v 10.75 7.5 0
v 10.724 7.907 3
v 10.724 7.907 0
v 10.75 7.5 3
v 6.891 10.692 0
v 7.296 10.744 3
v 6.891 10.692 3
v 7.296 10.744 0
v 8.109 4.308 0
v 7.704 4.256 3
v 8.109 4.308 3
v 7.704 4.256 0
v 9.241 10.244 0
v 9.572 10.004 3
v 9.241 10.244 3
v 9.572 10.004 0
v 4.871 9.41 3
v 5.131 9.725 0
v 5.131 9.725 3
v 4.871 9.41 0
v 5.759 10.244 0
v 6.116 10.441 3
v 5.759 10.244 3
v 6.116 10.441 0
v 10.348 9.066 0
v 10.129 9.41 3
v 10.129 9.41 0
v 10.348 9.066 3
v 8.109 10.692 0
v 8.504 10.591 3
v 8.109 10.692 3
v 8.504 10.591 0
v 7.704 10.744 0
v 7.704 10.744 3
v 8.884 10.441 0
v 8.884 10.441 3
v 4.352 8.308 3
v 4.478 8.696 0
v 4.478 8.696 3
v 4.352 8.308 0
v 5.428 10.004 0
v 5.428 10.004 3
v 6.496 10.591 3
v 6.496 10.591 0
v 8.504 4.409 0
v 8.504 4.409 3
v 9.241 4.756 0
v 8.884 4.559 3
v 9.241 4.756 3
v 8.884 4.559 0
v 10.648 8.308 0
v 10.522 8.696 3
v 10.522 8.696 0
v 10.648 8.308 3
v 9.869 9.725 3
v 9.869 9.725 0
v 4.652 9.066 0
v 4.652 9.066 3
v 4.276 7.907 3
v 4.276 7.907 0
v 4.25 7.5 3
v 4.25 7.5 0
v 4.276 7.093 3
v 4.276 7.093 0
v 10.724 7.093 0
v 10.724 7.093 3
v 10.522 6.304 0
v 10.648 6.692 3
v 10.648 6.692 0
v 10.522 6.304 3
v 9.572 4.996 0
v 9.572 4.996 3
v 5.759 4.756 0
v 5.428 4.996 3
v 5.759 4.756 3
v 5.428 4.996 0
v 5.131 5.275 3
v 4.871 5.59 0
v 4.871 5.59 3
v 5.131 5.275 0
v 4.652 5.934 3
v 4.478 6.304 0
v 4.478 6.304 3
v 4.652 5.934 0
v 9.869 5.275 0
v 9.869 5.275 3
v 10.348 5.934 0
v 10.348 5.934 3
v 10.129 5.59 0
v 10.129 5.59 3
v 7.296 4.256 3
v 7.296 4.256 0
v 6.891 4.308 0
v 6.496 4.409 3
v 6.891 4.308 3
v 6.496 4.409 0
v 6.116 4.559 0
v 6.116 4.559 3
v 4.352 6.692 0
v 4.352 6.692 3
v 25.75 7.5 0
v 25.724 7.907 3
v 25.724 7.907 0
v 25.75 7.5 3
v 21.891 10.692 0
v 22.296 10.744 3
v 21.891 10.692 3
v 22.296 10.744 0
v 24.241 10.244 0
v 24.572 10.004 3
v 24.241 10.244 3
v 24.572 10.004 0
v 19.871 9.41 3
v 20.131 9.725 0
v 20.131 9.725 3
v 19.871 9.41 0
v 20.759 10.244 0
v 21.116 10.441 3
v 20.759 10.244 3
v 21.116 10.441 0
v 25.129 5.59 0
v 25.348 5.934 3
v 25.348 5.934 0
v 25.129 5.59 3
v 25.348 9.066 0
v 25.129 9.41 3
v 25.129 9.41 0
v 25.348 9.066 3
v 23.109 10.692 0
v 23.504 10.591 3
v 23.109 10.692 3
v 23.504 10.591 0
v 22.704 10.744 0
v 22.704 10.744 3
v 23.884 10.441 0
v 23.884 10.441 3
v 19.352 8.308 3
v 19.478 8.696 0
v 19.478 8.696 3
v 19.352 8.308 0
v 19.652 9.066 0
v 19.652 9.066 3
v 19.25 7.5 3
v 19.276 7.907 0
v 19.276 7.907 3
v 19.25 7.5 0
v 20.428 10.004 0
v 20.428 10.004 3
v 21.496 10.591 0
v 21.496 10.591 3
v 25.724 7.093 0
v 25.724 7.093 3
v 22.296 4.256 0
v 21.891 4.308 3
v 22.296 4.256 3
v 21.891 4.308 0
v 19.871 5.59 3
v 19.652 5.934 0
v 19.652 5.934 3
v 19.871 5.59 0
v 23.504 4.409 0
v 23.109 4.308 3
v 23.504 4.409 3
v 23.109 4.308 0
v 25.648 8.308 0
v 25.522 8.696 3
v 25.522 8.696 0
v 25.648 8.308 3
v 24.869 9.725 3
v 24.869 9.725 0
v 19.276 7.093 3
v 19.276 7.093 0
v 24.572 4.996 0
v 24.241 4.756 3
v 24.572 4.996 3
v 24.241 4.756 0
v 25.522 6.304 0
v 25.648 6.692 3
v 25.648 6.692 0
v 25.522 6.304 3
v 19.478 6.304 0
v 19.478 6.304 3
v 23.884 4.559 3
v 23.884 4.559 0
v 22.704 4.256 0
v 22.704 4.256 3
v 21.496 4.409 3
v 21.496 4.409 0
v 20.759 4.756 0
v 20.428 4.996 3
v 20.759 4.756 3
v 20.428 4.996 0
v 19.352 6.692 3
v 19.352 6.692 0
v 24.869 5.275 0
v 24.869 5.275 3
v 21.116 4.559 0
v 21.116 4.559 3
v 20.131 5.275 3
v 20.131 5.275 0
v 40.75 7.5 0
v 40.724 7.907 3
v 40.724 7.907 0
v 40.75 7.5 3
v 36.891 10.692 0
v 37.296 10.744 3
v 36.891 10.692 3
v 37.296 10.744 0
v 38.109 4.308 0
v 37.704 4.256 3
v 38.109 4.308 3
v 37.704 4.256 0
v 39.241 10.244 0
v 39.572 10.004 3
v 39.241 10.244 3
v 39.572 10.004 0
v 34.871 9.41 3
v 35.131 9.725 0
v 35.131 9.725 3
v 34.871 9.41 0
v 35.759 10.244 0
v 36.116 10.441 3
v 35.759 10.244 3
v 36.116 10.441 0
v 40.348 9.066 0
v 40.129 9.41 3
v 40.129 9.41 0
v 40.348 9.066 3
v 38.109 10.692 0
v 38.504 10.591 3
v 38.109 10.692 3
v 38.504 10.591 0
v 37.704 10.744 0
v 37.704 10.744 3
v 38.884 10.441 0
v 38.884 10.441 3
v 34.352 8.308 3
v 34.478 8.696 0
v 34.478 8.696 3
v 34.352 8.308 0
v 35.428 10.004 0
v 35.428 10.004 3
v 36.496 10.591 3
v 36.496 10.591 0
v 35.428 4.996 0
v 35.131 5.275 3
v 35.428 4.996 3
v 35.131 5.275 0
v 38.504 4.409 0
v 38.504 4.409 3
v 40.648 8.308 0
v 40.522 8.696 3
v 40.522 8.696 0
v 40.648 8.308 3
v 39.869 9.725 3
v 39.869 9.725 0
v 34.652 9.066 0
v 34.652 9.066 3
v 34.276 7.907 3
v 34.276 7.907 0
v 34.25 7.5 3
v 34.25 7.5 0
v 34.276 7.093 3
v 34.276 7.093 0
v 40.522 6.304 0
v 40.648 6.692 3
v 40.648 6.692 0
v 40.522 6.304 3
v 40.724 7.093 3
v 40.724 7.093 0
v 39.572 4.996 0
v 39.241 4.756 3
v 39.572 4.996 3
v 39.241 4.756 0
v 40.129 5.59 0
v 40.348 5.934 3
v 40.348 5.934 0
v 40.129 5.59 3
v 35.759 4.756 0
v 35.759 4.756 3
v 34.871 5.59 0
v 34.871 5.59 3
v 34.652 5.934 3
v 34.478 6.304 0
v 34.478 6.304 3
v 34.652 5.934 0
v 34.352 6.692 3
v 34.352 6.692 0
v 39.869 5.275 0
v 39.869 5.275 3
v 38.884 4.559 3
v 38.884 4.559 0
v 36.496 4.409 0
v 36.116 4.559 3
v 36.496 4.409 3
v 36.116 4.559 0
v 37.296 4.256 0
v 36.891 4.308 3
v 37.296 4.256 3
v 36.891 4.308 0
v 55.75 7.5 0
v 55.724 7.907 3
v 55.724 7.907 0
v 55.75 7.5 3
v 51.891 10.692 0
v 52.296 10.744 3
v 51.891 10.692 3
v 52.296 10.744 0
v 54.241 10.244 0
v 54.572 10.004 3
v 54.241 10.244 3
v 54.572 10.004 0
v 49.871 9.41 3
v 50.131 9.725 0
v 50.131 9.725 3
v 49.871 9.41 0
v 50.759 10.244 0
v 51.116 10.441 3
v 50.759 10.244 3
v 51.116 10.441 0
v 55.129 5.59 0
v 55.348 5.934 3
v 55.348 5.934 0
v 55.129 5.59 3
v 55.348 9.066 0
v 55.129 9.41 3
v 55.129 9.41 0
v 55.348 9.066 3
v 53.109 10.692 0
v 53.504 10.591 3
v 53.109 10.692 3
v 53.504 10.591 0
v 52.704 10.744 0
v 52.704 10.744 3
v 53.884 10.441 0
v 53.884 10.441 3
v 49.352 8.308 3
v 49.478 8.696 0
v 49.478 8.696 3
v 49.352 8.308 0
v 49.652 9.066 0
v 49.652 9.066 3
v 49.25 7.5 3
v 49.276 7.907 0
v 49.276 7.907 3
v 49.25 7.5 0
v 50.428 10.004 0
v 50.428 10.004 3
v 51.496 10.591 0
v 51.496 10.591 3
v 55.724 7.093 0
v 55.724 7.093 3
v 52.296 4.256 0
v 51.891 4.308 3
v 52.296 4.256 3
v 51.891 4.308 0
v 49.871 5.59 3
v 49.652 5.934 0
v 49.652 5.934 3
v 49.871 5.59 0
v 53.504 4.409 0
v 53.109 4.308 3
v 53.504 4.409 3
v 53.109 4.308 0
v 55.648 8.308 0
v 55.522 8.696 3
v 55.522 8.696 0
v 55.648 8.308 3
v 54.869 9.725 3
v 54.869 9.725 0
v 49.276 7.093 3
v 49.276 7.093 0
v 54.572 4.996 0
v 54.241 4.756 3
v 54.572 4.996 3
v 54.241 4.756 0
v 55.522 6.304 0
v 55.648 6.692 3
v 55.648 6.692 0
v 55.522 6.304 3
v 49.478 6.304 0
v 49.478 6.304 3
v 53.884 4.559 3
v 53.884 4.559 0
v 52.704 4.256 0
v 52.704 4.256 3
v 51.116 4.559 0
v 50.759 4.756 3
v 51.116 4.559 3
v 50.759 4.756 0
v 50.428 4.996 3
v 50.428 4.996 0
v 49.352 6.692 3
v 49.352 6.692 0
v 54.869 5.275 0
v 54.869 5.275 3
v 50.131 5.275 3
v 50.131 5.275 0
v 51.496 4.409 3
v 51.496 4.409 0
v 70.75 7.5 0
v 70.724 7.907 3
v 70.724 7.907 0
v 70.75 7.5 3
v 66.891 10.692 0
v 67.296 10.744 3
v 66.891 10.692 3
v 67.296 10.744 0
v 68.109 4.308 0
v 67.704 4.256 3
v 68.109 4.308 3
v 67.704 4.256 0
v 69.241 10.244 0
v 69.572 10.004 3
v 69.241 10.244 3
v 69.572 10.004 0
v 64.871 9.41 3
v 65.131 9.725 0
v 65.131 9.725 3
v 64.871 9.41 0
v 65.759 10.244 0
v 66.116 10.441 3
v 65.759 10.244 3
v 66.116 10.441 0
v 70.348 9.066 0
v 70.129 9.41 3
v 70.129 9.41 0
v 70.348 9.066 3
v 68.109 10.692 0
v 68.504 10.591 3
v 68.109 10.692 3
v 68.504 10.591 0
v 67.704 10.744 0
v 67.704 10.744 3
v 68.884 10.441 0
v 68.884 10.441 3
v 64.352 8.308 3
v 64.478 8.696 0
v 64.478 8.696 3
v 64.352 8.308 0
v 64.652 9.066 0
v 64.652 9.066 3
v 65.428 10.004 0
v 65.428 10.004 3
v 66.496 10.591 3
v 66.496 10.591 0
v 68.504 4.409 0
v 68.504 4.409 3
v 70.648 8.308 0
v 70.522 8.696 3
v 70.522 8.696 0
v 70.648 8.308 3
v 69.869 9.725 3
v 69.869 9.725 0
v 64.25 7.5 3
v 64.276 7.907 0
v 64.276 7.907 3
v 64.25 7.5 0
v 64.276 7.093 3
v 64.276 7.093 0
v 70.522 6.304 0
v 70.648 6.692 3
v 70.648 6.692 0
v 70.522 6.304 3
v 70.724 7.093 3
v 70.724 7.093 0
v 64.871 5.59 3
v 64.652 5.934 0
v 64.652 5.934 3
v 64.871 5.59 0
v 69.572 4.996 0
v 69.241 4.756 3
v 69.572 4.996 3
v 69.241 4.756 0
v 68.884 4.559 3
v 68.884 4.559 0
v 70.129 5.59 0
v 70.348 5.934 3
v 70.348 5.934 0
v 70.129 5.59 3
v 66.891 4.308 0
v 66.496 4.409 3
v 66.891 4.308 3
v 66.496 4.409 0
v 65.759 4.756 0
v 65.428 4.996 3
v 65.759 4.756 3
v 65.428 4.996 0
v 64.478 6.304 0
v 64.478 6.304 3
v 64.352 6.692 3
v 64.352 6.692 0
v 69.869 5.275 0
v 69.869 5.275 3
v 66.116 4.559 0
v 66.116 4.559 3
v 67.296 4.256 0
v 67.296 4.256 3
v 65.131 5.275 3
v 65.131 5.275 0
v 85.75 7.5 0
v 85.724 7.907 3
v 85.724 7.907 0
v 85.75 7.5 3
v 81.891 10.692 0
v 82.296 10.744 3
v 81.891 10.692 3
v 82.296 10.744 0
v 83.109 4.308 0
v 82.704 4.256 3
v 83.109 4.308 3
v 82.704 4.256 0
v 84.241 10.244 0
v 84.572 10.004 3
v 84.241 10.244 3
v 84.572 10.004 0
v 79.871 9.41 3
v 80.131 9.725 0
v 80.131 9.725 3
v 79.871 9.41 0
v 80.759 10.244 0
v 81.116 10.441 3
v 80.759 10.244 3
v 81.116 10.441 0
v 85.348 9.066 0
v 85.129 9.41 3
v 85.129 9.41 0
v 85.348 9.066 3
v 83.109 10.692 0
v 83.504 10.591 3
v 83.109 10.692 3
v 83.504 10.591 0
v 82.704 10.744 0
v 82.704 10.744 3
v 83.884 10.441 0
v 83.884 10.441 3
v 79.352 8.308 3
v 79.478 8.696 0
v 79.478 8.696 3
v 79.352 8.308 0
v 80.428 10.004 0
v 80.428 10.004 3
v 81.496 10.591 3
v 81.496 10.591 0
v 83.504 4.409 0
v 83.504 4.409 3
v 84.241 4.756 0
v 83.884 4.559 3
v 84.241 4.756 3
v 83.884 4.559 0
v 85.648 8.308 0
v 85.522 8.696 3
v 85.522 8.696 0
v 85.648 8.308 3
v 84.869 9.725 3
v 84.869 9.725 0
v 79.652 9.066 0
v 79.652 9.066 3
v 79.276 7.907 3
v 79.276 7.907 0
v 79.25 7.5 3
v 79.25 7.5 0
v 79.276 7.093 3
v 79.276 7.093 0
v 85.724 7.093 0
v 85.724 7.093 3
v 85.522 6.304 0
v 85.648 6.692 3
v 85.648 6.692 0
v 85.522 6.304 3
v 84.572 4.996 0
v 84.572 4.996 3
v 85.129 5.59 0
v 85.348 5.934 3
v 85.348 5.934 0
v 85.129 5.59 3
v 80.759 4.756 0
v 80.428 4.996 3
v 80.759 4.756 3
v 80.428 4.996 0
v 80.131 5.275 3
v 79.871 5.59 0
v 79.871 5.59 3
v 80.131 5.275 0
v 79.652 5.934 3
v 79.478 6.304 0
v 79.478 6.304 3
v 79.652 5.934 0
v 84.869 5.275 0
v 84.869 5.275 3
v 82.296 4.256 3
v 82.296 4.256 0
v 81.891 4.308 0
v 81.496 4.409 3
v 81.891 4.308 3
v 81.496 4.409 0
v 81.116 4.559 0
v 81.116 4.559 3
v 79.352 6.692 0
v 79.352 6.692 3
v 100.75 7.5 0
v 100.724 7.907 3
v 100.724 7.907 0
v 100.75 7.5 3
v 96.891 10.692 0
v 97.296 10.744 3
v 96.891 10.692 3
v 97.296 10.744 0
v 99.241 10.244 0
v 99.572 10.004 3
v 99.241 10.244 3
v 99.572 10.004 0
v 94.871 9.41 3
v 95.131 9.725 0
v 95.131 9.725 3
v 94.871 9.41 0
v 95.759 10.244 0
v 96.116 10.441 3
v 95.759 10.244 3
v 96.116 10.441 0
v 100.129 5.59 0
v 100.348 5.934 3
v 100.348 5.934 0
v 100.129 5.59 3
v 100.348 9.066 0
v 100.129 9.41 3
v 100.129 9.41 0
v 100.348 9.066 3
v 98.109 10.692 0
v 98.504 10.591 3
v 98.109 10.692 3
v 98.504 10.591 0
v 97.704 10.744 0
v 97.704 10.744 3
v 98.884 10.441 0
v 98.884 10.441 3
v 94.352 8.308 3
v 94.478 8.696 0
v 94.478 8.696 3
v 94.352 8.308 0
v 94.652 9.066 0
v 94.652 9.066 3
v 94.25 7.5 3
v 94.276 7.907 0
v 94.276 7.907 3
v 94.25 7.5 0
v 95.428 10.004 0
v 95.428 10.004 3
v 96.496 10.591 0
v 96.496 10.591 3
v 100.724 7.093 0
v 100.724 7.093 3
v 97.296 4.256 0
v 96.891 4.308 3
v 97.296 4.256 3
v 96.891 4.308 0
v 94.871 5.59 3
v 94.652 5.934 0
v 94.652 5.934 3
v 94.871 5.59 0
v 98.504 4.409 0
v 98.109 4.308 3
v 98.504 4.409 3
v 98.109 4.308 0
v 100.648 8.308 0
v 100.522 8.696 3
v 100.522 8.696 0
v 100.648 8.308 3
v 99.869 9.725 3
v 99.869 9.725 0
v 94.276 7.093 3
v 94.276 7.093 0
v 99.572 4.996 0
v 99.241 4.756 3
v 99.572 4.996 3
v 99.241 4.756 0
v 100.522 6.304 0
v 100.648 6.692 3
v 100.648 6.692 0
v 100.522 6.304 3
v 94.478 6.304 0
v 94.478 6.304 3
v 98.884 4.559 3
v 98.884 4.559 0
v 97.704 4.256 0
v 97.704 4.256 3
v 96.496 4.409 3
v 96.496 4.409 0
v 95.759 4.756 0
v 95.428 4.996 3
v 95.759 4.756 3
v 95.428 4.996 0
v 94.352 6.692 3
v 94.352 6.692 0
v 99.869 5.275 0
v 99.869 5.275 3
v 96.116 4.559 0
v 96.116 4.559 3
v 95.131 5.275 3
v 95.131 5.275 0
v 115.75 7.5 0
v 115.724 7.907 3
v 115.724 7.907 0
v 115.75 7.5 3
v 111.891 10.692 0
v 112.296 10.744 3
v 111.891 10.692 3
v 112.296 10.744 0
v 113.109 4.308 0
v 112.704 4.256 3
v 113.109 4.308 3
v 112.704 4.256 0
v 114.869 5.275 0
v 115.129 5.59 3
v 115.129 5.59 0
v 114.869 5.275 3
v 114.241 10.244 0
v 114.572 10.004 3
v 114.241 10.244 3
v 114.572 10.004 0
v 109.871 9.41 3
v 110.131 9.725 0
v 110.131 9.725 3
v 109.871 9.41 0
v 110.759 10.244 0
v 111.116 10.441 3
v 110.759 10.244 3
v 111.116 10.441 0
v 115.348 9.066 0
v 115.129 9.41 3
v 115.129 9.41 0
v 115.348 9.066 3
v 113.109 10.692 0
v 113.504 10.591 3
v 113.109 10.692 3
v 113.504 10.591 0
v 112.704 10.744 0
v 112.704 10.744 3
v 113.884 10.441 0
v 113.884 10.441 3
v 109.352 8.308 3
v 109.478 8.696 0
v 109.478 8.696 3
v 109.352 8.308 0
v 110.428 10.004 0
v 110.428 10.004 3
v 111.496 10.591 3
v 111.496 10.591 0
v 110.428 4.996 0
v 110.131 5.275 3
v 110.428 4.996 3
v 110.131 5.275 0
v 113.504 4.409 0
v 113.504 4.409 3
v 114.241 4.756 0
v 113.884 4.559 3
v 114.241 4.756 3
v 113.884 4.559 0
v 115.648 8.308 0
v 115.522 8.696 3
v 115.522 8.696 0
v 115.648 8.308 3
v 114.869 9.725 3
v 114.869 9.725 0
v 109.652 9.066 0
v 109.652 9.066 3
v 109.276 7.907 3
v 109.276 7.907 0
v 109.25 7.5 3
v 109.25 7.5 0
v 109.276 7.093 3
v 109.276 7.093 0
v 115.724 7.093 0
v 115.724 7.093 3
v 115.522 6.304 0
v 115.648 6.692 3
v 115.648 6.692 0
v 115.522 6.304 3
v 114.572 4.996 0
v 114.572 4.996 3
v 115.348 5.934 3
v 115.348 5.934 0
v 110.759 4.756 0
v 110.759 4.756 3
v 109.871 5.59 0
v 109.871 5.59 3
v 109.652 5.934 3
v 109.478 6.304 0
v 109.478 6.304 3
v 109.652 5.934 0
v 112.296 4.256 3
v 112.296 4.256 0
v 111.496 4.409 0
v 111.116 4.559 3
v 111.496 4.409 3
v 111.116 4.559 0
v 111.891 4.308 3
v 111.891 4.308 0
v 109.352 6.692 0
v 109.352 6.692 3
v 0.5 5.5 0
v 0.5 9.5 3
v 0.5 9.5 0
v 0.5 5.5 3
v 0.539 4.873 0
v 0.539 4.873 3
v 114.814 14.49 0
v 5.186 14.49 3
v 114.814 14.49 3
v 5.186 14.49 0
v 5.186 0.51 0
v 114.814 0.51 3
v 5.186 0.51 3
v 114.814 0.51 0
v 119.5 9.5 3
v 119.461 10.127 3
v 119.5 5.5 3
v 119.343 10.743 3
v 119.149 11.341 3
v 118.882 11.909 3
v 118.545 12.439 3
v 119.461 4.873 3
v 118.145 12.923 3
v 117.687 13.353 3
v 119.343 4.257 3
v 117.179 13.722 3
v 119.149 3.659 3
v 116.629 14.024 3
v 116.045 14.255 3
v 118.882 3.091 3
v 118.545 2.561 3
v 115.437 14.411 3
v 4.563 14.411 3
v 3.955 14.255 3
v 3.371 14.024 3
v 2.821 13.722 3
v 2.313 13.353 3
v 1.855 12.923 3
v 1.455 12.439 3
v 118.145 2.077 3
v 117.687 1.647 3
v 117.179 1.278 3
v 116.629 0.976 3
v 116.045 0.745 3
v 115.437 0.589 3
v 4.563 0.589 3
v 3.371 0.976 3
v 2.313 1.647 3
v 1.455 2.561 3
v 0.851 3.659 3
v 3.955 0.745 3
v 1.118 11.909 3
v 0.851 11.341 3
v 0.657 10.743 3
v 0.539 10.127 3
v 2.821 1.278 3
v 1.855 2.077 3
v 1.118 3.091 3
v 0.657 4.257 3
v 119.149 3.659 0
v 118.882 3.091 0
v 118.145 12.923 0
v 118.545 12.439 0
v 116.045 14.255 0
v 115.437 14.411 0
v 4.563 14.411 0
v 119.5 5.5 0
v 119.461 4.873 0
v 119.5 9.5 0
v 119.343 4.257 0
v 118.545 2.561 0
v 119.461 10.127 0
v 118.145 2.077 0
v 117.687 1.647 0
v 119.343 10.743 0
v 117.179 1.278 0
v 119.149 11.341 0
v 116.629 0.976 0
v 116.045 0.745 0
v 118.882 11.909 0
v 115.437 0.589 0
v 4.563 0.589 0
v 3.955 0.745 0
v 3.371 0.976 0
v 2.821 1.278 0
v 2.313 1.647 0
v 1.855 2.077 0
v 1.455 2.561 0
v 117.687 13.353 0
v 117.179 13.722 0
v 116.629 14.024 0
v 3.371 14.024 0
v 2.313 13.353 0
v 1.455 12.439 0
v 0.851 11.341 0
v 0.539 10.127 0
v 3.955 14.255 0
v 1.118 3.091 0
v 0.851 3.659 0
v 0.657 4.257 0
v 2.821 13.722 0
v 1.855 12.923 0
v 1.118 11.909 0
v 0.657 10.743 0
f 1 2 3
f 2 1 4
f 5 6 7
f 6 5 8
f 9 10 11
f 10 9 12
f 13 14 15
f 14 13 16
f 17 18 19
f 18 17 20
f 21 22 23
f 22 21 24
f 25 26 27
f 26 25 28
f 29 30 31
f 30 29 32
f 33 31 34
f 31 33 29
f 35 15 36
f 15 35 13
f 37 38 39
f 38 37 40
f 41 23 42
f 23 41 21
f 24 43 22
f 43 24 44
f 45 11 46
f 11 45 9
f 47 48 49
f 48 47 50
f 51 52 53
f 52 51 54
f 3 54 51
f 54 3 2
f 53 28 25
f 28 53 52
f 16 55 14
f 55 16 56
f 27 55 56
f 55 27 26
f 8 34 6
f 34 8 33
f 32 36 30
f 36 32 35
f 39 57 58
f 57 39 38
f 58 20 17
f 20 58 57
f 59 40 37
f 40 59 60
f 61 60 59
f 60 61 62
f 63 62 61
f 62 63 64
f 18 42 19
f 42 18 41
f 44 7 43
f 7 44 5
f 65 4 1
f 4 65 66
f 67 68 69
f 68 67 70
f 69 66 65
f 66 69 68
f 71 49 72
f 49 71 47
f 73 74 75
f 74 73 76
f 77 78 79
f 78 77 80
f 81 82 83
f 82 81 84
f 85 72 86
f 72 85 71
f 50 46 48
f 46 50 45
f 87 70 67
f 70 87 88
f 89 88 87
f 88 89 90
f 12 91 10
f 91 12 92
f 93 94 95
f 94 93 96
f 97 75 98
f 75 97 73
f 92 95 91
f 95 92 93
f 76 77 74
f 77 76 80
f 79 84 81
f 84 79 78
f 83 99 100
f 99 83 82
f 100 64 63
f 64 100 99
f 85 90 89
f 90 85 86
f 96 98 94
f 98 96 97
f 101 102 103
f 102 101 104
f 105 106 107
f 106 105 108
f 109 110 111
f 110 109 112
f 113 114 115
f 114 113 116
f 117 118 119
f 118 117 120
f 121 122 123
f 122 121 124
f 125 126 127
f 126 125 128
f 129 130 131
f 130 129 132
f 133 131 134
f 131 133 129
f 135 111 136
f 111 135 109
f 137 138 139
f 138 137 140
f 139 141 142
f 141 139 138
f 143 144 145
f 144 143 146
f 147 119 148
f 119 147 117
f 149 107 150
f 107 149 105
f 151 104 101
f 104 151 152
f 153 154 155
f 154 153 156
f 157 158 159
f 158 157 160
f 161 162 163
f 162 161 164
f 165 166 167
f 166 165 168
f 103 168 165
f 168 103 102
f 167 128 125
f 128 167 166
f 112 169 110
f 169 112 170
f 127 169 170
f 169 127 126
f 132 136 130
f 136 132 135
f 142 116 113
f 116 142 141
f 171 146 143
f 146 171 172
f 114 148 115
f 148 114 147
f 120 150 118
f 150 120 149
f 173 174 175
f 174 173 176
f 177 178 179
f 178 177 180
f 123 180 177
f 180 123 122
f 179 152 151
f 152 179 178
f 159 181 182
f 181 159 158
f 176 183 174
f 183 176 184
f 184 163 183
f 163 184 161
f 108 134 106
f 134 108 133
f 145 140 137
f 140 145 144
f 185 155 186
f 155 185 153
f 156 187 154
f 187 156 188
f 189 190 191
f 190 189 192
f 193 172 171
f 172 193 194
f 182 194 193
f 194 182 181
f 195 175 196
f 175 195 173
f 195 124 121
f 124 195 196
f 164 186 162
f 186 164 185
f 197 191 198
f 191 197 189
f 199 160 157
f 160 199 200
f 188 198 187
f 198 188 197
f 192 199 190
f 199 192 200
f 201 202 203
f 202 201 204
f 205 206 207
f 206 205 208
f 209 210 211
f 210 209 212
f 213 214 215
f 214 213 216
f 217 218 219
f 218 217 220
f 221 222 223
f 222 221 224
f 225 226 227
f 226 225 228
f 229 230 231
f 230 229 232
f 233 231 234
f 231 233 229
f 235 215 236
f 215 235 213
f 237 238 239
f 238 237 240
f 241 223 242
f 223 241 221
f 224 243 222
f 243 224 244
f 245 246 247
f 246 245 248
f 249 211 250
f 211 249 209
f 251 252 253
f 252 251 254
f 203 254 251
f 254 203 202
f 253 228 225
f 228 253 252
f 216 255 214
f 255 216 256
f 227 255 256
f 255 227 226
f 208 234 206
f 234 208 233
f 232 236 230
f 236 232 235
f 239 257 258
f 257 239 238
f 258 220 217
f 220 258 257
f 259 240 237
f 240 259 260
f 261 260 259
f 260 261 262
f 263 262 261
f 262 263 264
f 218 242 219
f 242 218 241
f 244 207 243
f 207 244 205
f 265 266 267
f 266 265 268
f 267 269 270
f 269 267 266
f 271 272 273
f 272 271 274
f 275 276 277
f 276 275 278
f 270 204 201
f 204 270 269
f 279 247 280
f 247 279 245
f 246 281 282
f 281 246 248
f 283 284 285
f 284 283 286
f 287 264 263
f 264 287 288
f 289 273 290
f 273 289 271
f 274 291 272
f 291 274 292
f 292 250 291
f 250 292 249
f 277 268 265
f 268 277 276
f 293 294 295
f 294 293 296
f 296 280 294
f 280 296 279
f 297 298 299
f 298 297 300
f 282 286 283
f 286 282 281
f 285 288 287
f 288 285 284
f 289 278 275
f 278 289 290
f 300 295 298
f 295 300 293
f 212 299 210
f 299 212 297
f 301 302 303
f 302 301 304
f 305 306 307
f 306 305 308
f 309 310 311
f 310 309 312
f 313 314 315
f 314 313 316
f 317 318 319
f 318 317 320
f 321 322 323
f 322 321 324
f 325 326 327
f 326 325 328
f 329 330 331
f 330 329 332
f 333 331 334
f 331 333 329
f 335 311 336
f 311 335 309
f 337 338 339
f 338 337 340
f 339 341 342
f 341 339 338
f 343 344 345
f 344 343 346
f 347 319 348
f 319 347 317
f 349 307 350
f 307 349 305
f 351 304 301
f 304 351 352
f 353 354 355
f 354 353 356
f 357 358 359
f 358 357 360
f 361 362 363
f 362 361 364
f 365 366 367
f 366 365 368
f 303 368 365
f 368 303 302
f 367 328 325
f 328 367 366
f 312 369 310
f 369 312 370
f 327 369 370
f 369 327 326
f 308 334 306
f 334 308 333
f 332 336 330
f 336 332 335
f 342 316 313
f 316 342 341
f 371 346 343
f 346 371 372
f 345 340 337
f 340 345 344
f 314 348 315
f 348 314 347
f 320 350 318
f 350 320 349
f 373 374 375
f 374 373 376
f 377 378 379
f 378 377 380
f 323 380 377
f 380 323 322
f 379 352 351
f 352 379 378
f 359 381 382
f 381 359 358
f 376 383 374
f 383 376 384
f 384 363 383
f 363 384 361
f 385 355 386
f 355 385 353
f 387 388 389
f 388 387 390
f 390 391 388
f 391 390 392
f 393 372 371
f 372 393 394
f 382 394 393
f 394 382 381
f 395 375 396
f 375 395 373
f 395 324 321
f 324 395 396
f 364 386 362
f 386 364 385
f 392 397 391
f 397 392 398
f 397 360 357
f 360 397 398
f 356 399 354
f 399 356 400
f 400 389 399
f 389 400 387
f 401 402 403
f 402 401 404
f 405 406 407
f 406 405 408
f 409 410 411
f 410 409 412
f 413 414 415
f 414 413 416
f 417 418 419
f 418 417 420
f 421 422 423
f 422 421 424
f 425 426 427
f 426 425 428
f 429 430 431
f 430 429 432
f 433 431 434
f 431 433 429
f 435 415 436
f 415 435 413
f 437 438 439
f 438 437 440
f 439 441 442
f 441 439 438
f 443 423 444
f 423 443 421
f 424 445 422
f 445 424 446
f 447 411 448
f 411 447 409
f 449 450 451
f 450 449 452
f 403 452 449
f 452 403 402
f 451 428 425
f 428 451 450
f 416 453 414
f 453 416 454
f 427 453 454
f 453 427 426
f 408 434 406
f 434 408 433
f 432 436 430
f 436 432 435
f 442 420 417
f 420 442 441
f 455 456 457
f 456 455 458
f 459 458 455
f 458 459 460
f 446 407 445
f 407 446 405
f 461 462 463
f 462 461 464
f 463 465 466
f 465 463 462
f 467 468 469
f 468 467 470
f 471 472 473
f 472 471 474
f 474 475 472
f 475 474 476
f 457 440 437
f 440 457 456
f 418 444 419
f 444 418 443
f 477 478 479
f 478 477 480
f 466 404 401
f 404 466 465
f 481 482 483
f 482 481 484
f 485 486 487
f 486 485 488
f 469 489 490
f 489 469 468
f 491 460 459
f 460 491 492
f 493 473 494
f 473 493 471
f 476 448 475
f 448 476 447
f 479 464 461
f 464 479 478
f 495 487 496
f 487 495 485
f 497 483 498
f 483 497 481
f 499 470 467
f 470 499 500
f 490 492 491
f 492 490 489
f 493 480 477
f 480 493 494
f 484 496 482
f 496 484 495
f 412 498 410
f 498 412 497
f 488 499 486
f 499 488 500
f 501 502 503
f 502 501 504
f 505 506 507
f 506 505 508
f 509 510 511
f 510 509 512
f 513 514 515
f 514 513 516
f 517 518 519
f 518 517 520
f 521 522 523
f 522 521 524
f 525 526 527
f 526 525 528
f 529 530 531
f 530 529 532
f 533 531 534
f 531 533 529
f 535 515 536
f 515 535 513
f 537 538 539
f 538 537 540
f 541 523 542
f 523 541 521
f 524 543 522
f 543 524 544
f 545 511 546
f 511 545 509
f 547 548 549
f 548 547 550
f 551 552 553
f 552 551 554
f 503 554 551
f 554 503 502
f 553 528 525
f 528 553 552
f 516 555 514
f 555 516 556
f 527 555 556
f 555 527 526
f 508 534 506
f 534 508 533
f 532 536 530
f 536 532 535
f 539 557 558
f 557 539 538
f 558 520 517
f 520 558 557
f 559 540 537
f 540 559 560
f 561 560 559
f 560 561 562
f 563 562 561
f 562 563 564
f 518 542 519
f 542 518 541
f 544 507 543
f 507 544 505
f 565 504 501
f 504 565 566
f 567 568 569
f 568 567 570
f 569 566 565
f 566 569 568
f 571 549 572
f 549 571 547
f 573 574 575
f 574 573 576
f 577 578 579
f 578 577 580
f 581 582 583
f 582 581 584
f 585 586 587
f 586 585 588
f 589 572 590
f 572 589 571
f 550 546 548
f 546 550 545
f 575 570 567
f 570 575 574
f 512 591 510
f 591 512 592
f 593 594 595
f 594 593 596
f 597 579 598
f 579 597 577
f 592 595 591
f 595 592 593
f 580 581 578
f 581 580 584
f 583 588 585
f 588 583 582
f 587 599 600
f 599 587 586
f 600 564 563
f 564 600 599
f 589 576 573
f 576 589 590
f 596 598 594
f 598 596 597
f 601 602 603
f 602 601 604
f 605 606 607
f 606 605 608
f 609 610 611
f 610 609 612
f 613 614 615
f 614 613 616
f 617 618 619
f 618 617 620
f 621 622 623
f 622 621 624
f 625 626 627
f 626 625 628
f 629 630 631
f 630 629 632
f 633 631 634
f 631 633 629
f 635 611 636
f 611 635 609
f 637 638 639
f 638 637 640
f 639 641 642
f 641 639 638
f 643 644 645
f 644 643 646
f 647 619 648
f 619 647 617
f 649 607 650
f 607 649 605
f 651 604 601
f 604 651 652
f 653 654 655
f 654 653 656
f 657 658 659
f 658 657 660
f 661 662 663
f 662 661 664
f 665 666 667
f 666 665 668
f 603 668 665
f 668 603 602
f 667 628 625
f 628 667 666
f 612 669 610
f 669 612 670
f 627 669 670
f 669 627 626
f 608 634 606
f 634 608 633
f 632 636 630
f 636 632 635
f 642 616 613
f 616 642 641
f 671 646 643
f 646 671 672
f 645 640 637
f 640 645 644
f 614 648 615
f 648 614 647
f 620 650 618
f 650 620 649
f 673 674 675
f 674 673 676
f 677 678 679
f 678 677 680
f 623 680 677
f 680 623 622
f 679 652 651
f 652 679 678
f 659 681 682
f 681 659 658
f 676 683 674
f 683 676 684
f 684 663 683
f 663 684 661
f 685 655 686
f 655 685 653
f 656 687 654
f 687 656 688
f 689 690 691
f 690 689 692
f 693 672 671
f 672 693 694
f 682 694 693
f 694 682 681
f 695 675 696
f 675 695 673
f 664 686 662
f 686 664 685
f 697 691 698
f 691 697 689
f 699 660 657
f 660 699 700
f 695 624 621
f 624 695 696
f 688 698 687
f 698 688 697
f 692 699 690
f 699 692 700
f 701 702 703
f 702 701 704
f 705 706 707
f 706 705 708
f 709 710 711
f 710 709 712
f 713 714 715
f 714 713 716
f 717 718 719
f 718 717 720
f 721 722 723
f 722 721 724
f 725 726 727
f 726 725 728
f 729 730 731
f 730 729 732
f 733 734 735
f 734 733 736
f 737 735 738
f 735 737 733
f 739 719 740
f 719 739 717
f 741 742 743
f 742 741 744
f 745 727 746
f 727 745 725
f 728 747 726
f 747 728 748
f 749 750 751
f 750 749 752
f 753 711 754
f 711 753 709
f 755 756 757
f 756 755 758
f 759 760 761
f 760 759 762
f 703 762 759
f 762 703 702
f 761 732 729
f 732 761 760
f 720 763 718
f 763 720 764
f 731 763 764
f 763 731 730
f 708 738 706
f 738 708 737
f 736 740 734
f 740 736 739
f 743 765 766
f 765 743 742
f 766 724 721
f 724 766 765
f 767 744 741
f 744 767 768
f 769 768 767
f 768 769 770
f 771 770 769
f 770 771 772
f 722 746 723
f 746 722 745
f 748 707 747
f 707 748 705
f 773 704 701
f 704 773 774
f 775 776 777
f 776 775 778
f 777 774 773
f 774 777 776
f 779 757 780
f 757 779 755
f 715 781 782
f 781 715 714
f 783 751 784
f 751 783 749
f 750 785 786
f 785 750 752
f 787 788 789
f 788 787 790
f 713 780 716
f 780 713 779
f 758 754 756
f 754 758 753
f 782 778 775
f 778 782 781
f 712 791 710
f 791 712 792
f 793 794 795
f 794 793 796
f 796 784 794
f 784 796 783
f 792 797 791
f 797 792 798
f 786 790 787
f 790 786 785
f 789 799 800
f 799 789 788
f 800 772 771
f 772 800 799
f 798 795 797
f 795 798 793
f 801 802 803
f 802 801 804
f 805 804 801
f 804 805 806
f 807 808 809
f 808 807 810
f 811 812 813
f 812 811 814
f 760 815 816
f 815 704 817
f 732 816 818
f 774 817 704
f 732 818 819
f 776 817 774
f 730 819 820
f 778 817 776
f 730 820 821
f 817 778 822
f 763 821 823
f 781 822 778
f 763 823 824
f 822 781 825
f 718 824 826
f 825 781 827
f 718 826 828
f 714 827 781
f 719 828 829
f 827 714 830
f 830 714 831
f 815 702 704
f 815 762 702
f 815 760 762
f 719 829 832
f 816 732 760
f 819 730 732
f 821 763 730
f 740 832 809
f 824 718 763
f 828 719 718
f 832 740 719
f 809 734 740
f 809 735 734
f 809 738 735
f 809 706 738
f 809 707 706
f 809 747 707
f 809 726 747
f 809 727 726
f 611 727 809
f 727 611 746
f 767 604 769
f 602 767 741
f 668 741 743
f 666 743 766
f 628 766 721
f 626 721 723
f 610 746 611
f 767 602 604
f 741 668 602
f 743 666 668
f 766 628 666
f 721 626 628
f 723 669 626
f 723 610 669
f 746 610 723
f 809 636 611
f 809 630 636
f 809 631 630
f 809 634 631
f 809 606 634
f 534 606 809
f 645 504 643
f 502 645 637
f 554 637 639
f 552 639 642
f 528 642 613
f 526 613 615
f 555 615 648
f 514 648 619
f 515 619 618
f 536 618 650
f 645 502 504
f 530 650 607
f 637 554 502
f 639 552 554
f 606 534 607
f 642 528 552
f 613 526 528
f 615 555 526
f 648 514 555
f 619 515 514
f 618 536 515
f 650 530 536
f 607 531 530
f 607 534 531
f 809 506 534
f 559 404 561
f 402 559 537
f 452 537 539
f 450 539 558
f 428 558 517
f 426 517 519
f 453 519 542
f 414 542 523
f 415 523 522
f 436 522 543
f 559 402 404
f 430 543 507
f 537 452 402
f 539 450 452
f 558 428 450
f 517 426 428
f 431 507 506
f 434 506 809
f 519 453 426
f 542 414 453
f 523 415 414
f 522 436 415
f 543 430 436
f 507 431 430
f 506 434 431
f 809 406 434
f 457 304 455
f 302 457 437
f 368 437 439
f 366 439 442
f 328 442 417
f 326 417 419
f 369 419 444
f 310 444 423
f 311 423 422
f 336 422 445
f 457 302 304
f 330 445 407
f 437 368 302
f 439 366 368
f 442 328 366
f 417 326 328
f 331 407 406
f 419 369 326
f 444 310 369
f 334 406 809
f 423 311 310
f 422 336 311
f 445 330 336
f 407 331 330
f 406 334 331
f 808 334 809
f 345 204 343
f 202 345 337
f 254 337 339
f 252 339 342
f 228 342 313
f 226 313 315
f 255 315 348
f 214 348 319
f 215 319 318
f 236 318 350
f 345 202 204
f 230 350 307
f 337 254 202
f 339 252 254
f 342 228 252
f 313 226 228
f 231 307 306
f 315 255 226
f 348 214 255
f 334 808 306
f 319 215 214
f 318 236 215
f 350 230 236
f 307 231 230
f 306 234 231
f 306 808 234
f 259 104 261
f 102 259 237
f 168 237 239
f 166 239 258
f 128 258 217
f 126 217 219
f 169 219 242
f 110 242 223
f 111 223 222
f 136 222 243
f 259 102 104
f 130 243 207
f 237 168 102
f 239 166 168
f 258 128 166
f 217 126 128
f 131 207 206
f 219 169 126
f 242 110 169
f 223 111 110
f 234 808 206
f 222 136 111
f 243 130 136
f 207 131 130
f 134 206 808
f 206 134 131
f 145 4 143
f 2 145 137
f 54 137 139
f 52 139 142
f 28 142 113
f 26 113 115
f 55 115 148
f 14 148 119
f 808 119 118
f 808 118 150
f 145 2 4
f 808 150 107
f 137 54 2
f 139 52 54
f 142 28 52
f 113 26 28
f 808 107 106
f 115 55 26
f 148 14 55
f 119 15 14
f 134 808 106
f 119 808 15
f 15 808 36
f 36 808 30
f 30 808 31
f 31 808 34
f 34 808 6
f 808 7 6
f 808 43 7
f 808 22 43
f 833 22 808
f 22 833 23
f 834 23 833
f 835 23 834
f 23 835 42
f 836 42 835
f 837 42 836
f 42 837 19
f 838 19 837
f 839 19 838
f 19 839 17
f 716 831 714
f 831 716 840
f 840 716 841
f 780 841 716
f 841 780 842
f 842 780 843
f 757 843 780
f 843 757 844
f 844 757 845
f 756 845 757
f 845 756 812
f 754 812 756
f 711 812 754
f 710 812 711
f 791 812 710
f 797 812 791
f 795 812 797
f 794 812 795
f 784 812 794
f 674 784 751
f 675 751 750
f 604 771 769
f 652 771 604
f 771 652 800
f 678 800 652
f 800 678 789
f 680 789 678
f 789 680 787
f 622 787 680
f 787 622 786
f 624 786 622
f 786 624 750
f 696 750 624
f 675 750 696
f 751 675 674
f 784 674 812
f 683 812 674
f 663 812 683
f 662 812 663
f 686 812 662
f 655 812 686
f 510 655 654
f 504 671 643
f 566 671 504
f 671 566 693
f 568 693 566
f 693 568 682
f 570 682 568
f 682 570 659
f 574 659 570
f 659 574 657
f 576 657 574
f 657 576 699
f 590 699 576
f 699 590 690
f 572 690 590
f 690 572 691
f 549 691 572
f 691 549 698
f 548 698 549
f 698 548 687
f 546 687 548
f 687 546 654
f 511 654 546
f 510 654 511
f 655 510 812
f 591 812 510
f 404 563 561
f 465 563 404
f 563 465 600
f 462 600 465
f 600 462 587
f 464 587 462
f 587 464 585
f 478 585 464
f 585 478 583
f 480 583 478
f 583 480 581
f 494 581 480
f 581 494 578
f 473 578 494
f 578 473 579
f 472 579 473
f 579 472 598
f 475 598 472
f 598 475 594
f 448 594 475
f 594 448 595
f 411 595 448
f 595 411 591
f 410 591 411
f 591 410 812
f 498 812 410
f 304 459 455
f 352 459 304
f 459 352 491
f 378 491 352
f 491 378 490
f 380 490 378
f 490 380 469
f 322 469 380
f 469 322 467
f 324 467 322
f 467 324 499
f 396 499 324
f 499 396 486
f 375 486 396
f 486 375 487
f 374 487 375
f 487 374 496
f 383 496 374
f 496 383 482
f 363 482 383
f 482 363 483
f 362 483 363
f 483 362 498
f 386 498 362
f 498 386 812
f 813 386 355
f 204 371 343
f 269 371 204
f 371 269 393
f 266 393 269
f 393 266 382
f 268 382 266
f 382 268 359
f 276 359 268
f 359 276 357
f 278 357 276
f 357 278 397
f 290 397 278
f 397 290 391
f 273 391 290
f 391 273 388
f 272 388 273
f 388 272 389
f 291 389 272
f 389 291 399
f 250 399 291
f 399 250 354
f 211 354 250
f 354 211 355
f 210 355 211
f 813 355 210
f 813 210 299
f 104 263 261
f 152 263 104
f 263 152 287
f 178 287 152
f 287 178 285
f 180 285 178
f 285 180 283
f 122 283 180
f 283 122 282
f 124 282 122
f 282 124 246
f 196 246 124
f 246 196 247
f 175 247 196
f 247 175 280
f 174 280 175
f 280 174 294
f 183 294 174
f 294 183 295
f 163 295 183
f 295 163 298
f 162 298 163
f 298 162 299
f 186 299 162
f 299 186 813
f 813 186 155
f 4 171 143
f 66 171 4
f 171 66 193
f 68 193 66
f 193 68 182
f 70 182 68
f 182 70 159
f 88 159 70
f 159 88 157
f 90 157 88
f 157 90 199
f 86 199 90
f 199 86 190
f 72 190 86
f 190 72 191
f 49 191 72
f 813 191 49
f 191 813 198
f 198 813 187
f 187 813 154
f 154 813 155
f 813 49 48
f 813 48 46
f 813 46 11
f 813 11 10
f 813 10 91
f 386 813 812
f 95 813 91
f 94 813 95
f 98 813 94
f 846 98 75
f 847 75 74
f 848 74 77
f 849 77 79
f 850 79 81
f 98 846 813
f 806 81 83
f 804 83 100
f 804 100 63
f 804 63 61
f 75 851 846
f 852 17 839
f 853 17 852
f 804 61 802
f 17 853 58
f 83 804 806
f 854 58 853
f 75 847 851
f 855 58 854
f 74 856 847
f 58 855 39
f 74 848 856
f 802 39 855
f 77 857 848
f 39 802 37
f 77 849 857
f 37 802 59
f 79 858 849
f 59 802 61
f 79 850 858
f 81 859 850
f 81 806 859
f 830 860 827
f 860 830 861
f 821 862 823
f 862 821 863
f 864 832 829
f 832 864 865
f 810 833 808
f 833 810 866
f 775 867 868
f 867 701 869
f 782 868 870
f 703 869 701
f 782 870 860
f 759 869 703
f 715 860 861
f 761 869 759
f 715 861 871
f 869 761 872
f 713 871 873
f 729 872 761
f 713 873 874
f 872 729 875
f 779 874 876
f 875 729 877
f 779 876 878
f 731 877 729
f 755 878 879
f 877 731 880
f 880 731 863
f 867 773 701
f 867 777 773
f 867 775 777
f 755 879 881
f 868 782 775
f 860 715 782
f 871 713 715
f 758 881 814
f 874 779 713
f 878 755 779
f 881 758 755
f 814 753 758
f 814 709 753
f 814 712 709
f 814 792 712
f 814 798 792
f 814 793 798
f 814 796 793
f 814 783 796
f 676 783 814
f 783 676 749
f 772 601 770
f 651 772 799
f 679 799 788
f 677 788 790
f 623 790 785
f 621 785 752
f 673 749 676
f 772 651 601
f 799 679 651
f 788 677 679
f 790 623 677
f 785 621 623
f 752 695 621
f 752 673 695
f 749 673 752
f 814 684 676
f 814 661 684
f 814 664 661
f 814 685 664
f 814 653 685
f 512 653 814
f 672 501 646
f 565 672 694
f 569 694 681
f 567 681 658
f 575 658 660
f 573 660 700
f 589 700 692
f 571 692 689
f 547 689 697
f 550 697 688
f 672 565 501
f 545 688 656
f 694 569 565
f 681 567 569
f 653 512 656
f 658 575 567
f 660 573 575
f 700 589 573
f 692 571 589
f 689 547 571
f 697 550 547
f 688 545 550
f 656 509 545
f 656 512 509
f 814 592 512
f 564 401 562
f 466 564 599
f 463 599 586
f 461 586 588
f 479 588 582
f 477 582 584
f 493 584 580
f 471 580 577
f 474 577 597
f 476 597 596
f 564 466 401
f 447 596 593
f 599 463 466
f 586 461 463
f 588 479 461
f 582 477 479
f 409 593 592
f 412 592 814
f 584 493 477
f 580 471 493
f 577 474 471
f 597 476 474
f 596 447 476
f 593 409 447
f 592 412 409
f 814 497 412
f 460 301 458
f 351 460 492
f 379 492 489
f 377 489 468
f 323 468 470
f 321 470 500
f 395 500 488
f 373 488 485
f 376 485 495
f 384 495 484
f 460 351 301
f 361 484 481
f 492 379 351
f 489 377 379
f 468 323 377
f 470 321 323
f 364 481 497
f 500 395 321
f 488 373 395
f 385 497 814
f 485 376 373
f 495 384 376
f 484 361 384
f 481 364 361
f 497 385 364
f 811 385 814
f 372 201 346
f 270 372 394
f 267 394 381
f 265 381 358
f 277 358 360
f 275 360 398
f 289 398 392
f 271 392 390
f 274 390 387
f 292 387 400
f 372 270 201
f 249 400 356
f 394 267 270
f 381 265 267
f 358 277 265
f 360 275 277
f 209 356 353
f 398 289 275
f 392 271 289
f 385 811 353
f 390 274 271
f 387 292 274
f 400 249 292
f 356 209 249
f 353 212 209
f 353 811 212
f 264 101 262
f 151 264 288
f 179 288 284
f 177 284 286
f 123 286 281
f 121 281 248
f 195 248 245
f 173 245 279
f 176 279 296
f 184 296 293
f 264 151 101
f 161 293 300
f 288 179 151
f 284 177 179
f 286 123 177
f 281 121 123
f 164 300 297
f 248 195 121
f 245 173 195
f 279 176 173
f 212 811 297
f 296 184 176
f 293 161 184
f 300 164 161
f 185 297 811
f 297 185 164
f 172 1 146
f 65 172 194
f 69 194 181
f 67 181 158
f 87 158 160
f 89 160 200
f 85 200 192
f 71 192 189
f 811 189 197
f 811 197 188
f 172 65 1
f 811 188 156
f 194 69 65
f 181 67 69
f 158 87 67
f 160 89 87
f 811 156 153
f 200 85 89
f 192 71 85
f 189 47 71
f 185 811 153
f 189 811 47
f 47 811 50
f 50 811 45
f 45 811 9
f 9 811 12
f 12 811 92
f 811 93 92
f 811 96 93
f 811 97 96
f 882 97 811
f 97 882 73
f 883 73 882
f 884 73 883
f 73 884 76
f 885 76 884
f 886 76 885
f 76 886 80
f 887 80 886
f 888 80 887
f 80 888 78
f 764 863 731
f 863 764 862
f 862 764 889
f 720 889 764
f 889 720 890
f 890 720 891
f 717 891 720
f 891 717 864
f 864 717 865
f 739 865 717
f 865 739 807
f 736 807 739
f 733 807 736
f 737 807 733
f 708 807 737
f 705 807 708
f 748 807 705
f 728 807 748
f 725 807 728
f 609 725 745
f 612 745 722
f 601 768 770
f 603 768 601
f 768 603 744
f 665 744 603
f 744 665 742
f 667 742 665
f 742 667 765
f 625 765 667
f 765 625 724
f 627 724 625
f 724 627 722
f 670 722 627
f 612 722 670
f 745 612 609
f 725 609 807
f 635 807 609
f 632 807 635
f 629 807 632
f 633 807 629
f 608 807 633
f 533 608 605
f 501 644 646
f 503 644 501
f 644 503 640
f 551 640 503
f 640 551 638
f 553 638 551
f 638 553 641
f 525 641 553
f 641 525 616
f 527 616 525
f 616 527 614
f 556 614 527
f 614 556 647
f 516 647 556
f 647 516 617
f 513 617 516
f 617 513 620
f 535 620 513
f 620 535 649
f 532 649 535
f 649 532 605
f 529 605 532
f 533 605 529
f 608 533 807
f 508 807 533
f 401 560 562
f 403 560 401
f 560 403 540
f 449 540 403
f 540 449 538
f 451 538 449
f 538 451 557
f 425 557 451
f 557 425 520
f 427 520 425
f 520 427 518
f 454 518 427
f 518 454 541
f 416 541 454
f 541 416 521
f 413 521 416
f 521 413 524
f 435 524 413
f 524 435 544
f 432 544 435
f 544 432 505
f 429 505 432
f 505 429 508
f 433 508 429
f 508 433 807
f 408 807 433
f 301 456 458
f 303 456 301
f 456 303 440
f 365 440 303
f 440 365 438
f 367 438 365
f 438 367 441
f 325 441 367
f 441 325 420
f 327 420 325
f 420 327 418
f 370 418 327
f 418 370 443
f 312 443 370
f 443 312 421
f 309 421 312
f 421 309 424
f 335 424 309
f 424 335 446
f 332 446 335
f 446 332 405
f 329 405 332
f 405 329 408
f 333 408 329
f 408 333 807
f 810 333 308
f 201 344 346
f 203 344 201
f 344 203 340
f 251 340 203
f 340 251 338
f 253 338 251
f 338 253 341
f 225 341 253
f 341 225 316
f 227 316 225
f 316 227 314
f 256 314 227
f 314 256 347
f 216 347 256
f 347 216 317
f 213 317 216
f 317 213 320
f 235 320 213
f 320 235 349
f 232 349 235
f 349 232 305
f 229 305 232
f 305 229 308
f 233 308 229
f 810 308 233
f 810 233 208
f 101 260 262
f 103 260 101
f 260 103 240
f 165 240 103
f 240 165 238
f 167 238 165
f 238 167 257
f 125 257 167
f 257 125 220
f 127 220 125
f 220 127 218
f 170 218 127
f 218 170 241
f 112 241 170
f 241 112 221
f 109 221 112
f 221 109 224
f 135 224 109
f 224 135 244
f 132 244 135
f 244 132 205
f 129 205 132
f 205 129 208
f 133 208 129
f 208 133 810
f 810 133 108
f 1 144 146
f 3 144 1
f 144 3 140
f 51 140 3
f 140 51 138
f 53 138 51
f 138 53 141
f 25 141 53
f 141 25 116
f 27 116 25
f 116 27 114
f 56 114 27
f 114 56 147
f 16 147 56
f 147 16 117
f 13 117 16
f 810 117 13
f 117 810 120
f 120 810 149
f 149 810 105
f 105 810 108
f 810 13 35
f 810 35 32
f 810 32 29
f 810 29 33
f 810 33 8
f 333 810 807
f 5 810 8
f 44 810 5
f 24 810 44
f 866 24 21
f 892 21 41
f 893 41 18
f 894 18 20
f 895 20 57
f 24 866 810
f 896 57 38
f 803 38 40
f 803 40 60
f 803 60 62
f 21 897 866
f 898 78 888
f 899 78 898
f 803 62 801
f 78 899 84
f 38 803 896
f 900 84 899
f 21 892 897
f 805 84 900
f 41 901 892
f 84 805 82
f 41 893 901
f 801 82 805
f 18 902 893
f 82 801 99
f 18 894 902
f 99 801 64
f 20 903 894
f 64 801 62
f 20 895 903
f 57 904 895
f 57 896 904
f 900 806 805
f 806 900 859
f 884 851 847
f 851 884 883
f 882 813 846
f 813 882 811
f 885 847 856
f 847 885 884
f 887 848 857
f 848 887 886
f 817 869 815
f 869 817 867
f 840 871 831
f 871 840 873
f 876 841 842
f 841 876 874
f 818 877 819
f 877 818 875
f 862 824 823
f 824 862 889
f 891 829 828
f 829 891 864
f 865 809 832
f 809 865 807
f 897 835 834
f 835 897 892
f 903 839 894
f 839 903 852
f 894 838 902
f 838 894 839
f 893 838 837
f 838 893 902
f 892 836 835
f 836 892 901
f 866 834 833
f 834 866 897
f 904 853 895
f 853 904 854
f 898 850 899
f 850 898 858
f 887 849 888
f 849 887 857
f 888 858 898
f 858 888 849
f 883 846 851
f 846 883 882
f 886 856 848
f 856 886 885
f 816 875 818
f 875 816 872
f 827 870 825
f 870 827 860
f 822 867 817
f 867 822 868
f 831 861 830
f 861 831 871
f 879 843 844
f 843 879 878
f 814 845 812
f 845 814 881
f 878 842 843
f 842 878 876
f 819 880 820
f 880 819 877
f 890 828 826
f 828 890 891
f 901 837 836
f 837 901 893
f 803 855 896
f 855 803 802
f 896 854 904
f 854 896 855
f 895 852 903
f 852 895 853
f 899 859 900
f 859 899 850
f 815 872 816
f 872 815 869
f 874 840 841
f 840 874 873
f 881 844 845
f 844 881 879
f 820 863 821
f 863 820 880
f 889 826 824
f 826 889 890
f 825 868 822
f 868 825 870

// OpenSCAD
// Generated by SolidPython 1.1.3 on 2023-01-30 14:08:36
$fn = 50;


difference() {
	union() {
		translate(v = [60.0000000000, 7.5000000000, 0]) {
			rotate(a = [0, 0, 0]) {
				hull() {
					translate(v = [-54.5000000000, 2.0000000000, 0]) {
						rotate(a = [0, 0, 0]) {
							translate(v = [0, 0, 0]) {
								rotate(a = [0, 0, 0]) {
									cylinder(h = 3, r = 5);
								}
							}
						}
					}
					translate(v = [54.5000000000, 2.0000000000, 0]) {
						rotate(a = [0, 0, 0]) {
							translate(v = [0, 0, 0]) {
								rotate(a = [0, 0, 0]) {
									cylinder(h = 3, r = 5);
								}
							}
						}
					}
					translate(v = [-54.5000000000, -2.0000000000, 0]) {
						rotate(a = [0, 0, 0]) {
							translate(v = [0, 0, 0]) {
								rotate(a = [0, 0, 0]) {
									cylinder(h = 3, r = 5);
								}
							}
						}
					}
					translate(v = [54.5000000000, -2.0000000000, 0]) {
						rotate(a = [0, 0, 0]) {
							translate(v = [0, 0, 0]) {
								rotate(a = [0, 0, 0]) {
									cylinder(h = 3, r = 5);
								}
							}
						}
					}
				}
			}
		}
	}
	union() {
		translate(v = [7.5000000000, 7.5000000000, 0]) {
			rotate(a = [0, 0, 0]) {
				translate(v = [0, 0, -50]) {
					rotate(a = [0, 0, 0]) {
						cylinder(h = 100, r = 3.2500000000);
					}
				}
			}
		}
		translate(v = [22.5000000000, 7.5000000000, 0]) {
			rotate(a = [0, 0, 0]) {
				translate(v = [0, 0, -50]) {
					rotate(a = [0, 0, 0]) {
						cylinder(h = 100, r = 3.2500000000);
					}
				}
			}
		}
		translate(v = [37.5000000000, 7.5000000000, 0]) {
			rotate(a = [0, 0, 0]) {
				translate(v = [0, 0, -50]) {
					rotate(a = [0, 0, 0]) {
						cylinder(h = 100, r = 3.2500000000);
					}
				}
			}
		}
		translate(v = [52.5000000000, 7.5000000000, 0]) {
			rotate(a = [0, 0, 0]) {
				translate(v = [0, 0, -50]) {
					rotate(a = [0, 0, 0]) {
						cylinder(h = 100, r = 3.2500000000);
					}
				}
			}
		}
		translate(v = [67.5000000000, 7.5000000000, 0]) {
			rotate(a = [0, 0, 0]) {
				translate(v = [0, 0, -50]) {
					rotate(a = [0, 0, 0]) {
						cylinder(h = 100, r = 3.2500000000);
					}
				}
			}
		}
		translate(v = [82.5000000000, 7.5000000000, 0]) {
			rotate(a = [0, 0, 0]) {
				translate(v = [0, 0, -50]) {
					rotate(a = [0, 0, 0]) {
						cylinder(h = 100, r = 3.2500000000);
					}
				}
			}
		}
		translate(v = [97.5000000000, 7.5000000000, 0]) {
			rotate(a = [0, 0, 0]) {
				translate(v = [0, 0, -50]) {
					rotate(a = [0, 0, 0]) {
						cylinder(h = 100, r = 3.2500000000);
					}
				}
			}
		}
		translate(v = [112.5000000000, 7.5000000000, 0]) {
			rotate(a = [0, 0, 0]) {
				translate(v = [0, 0, -50]) {
					rotate(a = [0, 0, 0]) {
						cylinder(h = 100, r = 3.2500000000);
					}
				}
			}
		}
	}
}
/***********************************************
*********      SolidPython code:      **********
************************************************
 
from solid import *
import os
import subprocess

import oomB

import opsc_library_gen

mode = "laser"
#mode = "3d_print"

defined_objects = {}

radius_dict = {}
countersunk_dict = {}


def set_mode(m):
    global mode
    mode = m
    radius_dict['M6'] = 6.5/2
    radius_dict['M3'] = 3.3/2
    if mode == "laser":
        radius_dict['M6'] = 6/2
        radius_dict['M3'] = 3/2

    countersunk_dict['M3'] = {}
    countersunk_dict['M3']['little_rad'] = radius_dict['M3']
    countersunk_dict['M3']['big_rad'] = (5.5+0.6)/2
    if mode == "laser":
        countersunk_dict['M3']['big_rad'] = (4.75+0.6)/2
        countersunk_dict['M3']['little_rad'] = (4.75+0.6)/2

    countersunk_dict['M3']['height'] = 1.7


def opsc_make_object(filename, objects, save_type="none",resolution=50, layers = 1, tilediff = 200, mode="laser"):
    set_mode(mode)
    save_type = save_type.lower()
    os.makedirs(os.path.dirname(filename), exist_ok=True)
    final_object = opsc_get_object(objects)
    # Save the final object to the specified filename    
    scad_render_to_file(final_object, filename, file_header='$fn = %s;' % resolution, include_orig_code=True)
    if mode == "laser":
        filename_laser = filename.replace(".scad","-flat.scad")
        scad_render_to_file(getLaser(final_object, layers=layers, tilediff=tilediff), filename_laser, file_header='$fn = %s;' % resolution, include_orig_code=True)
        if save_type == "all":
            saveToAll(filename_laser)
        elif save_type == "dxf":
            saveToDxf(filename_laser)
    if save_type == "all":
        saveToAll(filename)
    elif save_type == "dxf":
        saveToDxf(filename)


def opsc_get_object(objects):
    # Create the solidpython objects
    positive_objects = [get_opsc_item(obj) for obj in objects if obj['type'] == 'positive']
    negative_objects = [get_opsc_item(obj) for obj in objects if obj['type'] == 'negative']
    # Union the positive objects
    positive_object = union()(*positive_objects)
    # Union the negative objects
    negative_object = union()(*negative_objects)
    # Create the final object by subtracting the negative objects from the positive objects
    return difference()(positive_object, negative_object)

def get_opsc_item(params):
    # A dictionary to map radius string values to numerical values
    #radius_dict = {'small': 5, 'medium': 10, 'large': 15}
    # An array of function names for basic shapes
    basic_shapes = ['cube', 'sphere', 'cylinder']
    
    # An array of function names for other shapes
    other_shapes = ['hole', 'slot', 'rounded_rectangle', 'countersunk']
    


    # Convert radius to r if present, and remove radius from the params dictionary
    if 'radius' in params:
        if isinstance(params['radius'], str):
            # Use the radius_dict to map the radius string value to a numerical value
            params['r'] = radius_dict[params['radius']]
        else:
            params['r'] = params['radius']
        del params['radius']
    

    # Check if the object type is a basic shape
    if params['shape'] in basic_shapes:
        # Remove shape and unexpected dictionary values
        allowed_keys = {'size', 'r', 'r1', 'r2', 'd', 'h', 'rw', 'rh', 'dw', 'dh'}
        shape_params = {k: v for k, v in params.items() if k in allowed_keys}

        # Call the corresponding function for the shape parameter, using ** notation to pass the shape_params dictionary as keyword arguments
        return get_opsc_transform(params,globals()[params['shape']](**shape_params))
    
    # If the object type is not a basic shape, check if it's a defined object or one of the other shapes
    elif params['shape'] in other_shapes:
        # Call the corresponding function for the shape parameter, passing the params dictionary as an argument
        p2 = copy.deepcopy(params)
        p2["pos"] = [0,0,0]
        return get_opsc_transform(params,globals()[params['shape']](p2))
    
    # If the object is not a basic shape or a defined object, try to import it from a .scad file
    else:
        obj = defined_objects[params['shape']]
        return get_opsc_transform(params,obj)

def get_opsc_transform(params, solid_obj):
    # Rotate the object based on the 'rot' field in the params dictionary, or the 'rotX', 'rotY', and 'rotZ' fields if 'rot' is not present
    rot = params.get('rot', [])
    if rot:
        rotX, rotY, rotZ = rot
    else:
        rotX = params.get('rotX', 0)
        rotY = params.get('rotY', 0)
        rotZ = params.get('rotZ', 0)
    solid_obj = rotate([rotX, rotY, rotZ])(solid_obj)

    # Translate the object based on the 'pos' field in the params dictionary, or the 'x', 'y', and 'z' fields if 'pos' is not present
    pos = params.get('pos', [])
    if pos:
        x, y, z = pos
    else:
        x = params.get('x', 0)
        y = params.get('y', 0)
        z = params.get('z', 0)
    solid_obj = translate([x, y, z])(solid_obj)
    return solid_obj


import random

def opsc_easy_array(type, shape, repeats, pos_start, shift_arr, **kwargs):
    for i in range(0,3):
        repeats.append(1)
        pos_start.append(0)
        shift_arr.append(0)
    return_objects = []

    for x in range(0,repeats[0]):
        for y in range(0,repeats[1]):
            for z in range(0,repeats[2]):
                return_objects.append(opsc_easy(type, shape, pos=[pos_start[0]+x*shift_arr[0],pos_start[1]+y*shift_arr[1],pos_start[2]+z*shift_arr[2]], **kwargs))
    return return_objects                



def opsc_easy(type, shape, **kwargs):
    obj = {
        'type': type,
        'shape': shape
    }
    for param in ['size', 'r', 'r1', 'r2', 'd', 'h', 'rw', 'rh', 'dw', 'dh', 'pos', 'x', 'y', 'z', 'rot', 'rotX', 'rotY', 'rotZ', "w"]:
        if param in kwargs:
            obj[param] = kwargs[param]
    return obj

def hole(params):
    p2 = copy.deepcopy(params)  
    # Check if the radius is a string and replace it with the corresponding value from the dictionary
    if isinstance(p2['r'], str):
        p2['r'] = radius_dict[p2['r']]
    
    # Set the height to 100 if not specified
    if 'h' not in p2:
        p2['h'] = 100
        p2["pos"] = [0,0,-50]
    p2["center"] = True
    # Create the cylinder object
    p2["shape"] = "cylinder"
    p2["type"] = "positive"

    return get_opsc_item(p2)

import copy

def countersunk(params):
    p2 = copy.deepcopy(params)
    counter_rad = p2['r']
    p2['r'] = radius_dict[p2['r']]
    hp = copy.deepcopy(p2)
    hp["type"] = "positive"
    hp["shape"] = "hole"
    del hp["rot"]
    hol = get_opsc_item(hp)
    
    cp = copy.deepcopy(p2)
    cp["h"] = countersunk_dict[counter_rad]["height"]
    cp["r2"] = countersunk_dict[counter_rad]["little_rad"]
    cp["r1"] = countersunk_dict[counter_rad]["big_rad"]
    del cp["r"]
    del cp["rot"]
    cp["type"] = "positive"
    cp["shape"] = "cylinder"
    cp["pos"] = [0,0,0]

    top = get_opsc_item(cp)
    return union()(hol,top)



def slot(params):  
    p2 = copy.deepcopy(params) 
    if isinstance(p2['r'], str):
        p2['r'] = radius_dict[p2['r']]
    p2["type"] = "positive"
    p2["shape"] = "hole"
    del p2["rot"]
    p2["pos"] = [0,0,0]
    left = copy.deepcopy(p2)
    right = copy.deepcopy(p2)
    left["pos"][0] = p2["w"] / 2 - p2["r"] 
    
    right["pos"][0] = -p2["w"] / 2 + p2["r"] 
    pass
    leftObj = get_opsc_item(left)
    rightObj = get_opsc_item(right)
    return hull()(leftObj, rightObj)

def rounded_rectangle(params):   
    p2 = copy.deepcopy(params) 
    p2["h"] = p2["size"][2]
    p2["pos"] = p2.get("pos", [0, 0, 0]) 
    p2["type"] = "positive"
    p2["shape"] = "hole"
    p2["pos"] = [0,0,0]
    
    if 'rot' in p2:
        del p2["rot"]   
    if 'r' not in p2:
        p2["r"] = 5 
    tl = copy.deepcopy(p2)
    tr = copy.deepcopy(p2)
    bl = copy.deepcopy(p2)
    br = copy.deepcopy(p2)
    tl["pos"][0] = -(p2["size"][0] - p2["r"]*2)/2
    tl["pos"][1] = (p2["size"][1] - p2["r"]*2)/2
    tr["pos"][0] = (p2["size"][0] - p2["r"]*2)/2
    tr["pos"][1] = (p2["size"][1] - p2["r"]*2)/2
    bl["pos"][0] = -(p2["size"][0] - p2["r"]*2)/2
    bl["pos"][1] = -(p2["size"][1] - p2["r"]*2)/2
    br["pos"][0] = (p2["size"][0] - p2["r"]*2)/2
    br["pos"][1] = -(p2["size"][1] - p2["r"]*2)/2
    del tl["size"]
    del tr["size"]
    del bl["size"]
    del br["size"]
    tlo = get_opsc_item(tl)
    tro = get_opsc_item(tr)
    blo = get_opsc_item(bl)
    bro = get_opsc_item(br)    
    return hull()(tlo, tro, blo, bro)



def import_scad_object(filename):
    # Import the .scad file and convert it to a solidpython object
    #filename = "parts"
    obj = import_scad(filename)
    return obj.main()
    


import os
import solid as solidpython

# A dictionary to store the defined objects


def load_scad_objects():
    opsc_library_gen.gen_library(defined_objects)

import random

def test(num_objects):
    objects = []
    for i in range(num_objects):
        # Choose a random shape
        #shape = random.choice(['cube', 'sphere', 'cylinder', 'hole', 'slot', "rounded_rectangle"])
        shape = random.choice(["rounded_rectangle"])

        # Choose a random type
        type = random.choice(['positive', 'negative'])
        
        # Create an empty object dictionary
        obj = {'shape': shape, 'type': type}
        
        # Set shape-specific parameters
        if obj['shape'] in ['cube']:
            obj['size'] =  [random.uniform(5, 15), random.uniform(5, 15), random.uniform(5, 15)]
        if obj['shape'] in ['rounded_rectangle']:
            obj['size'] =  [random.uniform(5, 15), random.uniform(5, 15), random.uniform(5, 15)]
            obj['r'] = random.uniform(0.5, 5)
        elif obj['shape'] == 'sphere':
            obj['r'] = random.uniform(5, 15)
        elif obj['shape'] in ['cylinder', 'hole']:
            obj['r'] = random.uniform(0.5, 5)
            obj['h'] = random.uniform(5, 15)
        elif obj['shape'] == 'slot':
            obj['r'] = random.uniform(0.5, 5)
            obj['h'] = random.uniform(5, 15)
            obj['w'] = random.uniform(5, 15)
        
        # Set a random position and rotation
        obj['pos'] = [random.uniform(-20, 20), random.uniform(-20, 20), random.uniform(-20, 20)]
        obj['rot'] = [random.uniform(-180, 180), random.uniform(-180, 180), random.uniform(-180, 180)]
        
        # Add the object to the list
        objects.append(obj)
    return objects

####### old file saving
def saveToAll(fileIn):
    saveToDxf(fileIn)
    saveToPng(fileIn)
    saveToStl(fileIn)
    saveToSvg(fileIn)

def saveToDxf(fileIn, fileOut="", copy_to_laser=True):
    if fileOut == "":
        fileOut = fileIn.replace(".scad",".dxf")
    saveToFile(fileIn, fileOut)


    
def saveToPng(fileIn, fileOut="",extra="--render"):
    if fileOut == "":
        fileOut = fileIn.replace(".scad",".png")
    saveToFile(fileIn, fileOut)

def saveToStl(fileIn, fileOut=""):
    if fileOut == "":
        fileOut = fileIn.replace(".scad",".stl")
    saveToFile(fileIn, fileOut)
    
def saveToSvg(fileIn, fileOut=""):
    if fileOut == "":
        fileOut = fileIn.replace(".scad",".svg")
    saveToFile(fileIn, fileOut)

def saveToFile(fileIn, fileOut,extra=""):
    #extra = extra + " --colorscheme Tomorrow"

    launchStr = 'openscad -o "' + fileOut + '"' + extra + ' "' + fileIn + '"'
    if ".png" in fileOut:
        launchStr = launchStr + " --render"
    print("            saveToFile launch string: " + launchStr)
    subprocess.run(launchStr)
    x=0

def getLaser(final_object,start=1.5,layers=1,thickness=3,tilediff=200):
        rv= []

        for x in range(layers):
            rv.append(translate([0,x*tilediff,0])(
                    projection()(
                        intersection()(translate([-500,-500,start+x*thickness])(cube(size=[1000,1000,0.1])),
                            final_object
                        )
                    )
            )
            )
            
        return union()(rv)

set_mode("laser")
load_scad_objects() 
 
************************************************/
